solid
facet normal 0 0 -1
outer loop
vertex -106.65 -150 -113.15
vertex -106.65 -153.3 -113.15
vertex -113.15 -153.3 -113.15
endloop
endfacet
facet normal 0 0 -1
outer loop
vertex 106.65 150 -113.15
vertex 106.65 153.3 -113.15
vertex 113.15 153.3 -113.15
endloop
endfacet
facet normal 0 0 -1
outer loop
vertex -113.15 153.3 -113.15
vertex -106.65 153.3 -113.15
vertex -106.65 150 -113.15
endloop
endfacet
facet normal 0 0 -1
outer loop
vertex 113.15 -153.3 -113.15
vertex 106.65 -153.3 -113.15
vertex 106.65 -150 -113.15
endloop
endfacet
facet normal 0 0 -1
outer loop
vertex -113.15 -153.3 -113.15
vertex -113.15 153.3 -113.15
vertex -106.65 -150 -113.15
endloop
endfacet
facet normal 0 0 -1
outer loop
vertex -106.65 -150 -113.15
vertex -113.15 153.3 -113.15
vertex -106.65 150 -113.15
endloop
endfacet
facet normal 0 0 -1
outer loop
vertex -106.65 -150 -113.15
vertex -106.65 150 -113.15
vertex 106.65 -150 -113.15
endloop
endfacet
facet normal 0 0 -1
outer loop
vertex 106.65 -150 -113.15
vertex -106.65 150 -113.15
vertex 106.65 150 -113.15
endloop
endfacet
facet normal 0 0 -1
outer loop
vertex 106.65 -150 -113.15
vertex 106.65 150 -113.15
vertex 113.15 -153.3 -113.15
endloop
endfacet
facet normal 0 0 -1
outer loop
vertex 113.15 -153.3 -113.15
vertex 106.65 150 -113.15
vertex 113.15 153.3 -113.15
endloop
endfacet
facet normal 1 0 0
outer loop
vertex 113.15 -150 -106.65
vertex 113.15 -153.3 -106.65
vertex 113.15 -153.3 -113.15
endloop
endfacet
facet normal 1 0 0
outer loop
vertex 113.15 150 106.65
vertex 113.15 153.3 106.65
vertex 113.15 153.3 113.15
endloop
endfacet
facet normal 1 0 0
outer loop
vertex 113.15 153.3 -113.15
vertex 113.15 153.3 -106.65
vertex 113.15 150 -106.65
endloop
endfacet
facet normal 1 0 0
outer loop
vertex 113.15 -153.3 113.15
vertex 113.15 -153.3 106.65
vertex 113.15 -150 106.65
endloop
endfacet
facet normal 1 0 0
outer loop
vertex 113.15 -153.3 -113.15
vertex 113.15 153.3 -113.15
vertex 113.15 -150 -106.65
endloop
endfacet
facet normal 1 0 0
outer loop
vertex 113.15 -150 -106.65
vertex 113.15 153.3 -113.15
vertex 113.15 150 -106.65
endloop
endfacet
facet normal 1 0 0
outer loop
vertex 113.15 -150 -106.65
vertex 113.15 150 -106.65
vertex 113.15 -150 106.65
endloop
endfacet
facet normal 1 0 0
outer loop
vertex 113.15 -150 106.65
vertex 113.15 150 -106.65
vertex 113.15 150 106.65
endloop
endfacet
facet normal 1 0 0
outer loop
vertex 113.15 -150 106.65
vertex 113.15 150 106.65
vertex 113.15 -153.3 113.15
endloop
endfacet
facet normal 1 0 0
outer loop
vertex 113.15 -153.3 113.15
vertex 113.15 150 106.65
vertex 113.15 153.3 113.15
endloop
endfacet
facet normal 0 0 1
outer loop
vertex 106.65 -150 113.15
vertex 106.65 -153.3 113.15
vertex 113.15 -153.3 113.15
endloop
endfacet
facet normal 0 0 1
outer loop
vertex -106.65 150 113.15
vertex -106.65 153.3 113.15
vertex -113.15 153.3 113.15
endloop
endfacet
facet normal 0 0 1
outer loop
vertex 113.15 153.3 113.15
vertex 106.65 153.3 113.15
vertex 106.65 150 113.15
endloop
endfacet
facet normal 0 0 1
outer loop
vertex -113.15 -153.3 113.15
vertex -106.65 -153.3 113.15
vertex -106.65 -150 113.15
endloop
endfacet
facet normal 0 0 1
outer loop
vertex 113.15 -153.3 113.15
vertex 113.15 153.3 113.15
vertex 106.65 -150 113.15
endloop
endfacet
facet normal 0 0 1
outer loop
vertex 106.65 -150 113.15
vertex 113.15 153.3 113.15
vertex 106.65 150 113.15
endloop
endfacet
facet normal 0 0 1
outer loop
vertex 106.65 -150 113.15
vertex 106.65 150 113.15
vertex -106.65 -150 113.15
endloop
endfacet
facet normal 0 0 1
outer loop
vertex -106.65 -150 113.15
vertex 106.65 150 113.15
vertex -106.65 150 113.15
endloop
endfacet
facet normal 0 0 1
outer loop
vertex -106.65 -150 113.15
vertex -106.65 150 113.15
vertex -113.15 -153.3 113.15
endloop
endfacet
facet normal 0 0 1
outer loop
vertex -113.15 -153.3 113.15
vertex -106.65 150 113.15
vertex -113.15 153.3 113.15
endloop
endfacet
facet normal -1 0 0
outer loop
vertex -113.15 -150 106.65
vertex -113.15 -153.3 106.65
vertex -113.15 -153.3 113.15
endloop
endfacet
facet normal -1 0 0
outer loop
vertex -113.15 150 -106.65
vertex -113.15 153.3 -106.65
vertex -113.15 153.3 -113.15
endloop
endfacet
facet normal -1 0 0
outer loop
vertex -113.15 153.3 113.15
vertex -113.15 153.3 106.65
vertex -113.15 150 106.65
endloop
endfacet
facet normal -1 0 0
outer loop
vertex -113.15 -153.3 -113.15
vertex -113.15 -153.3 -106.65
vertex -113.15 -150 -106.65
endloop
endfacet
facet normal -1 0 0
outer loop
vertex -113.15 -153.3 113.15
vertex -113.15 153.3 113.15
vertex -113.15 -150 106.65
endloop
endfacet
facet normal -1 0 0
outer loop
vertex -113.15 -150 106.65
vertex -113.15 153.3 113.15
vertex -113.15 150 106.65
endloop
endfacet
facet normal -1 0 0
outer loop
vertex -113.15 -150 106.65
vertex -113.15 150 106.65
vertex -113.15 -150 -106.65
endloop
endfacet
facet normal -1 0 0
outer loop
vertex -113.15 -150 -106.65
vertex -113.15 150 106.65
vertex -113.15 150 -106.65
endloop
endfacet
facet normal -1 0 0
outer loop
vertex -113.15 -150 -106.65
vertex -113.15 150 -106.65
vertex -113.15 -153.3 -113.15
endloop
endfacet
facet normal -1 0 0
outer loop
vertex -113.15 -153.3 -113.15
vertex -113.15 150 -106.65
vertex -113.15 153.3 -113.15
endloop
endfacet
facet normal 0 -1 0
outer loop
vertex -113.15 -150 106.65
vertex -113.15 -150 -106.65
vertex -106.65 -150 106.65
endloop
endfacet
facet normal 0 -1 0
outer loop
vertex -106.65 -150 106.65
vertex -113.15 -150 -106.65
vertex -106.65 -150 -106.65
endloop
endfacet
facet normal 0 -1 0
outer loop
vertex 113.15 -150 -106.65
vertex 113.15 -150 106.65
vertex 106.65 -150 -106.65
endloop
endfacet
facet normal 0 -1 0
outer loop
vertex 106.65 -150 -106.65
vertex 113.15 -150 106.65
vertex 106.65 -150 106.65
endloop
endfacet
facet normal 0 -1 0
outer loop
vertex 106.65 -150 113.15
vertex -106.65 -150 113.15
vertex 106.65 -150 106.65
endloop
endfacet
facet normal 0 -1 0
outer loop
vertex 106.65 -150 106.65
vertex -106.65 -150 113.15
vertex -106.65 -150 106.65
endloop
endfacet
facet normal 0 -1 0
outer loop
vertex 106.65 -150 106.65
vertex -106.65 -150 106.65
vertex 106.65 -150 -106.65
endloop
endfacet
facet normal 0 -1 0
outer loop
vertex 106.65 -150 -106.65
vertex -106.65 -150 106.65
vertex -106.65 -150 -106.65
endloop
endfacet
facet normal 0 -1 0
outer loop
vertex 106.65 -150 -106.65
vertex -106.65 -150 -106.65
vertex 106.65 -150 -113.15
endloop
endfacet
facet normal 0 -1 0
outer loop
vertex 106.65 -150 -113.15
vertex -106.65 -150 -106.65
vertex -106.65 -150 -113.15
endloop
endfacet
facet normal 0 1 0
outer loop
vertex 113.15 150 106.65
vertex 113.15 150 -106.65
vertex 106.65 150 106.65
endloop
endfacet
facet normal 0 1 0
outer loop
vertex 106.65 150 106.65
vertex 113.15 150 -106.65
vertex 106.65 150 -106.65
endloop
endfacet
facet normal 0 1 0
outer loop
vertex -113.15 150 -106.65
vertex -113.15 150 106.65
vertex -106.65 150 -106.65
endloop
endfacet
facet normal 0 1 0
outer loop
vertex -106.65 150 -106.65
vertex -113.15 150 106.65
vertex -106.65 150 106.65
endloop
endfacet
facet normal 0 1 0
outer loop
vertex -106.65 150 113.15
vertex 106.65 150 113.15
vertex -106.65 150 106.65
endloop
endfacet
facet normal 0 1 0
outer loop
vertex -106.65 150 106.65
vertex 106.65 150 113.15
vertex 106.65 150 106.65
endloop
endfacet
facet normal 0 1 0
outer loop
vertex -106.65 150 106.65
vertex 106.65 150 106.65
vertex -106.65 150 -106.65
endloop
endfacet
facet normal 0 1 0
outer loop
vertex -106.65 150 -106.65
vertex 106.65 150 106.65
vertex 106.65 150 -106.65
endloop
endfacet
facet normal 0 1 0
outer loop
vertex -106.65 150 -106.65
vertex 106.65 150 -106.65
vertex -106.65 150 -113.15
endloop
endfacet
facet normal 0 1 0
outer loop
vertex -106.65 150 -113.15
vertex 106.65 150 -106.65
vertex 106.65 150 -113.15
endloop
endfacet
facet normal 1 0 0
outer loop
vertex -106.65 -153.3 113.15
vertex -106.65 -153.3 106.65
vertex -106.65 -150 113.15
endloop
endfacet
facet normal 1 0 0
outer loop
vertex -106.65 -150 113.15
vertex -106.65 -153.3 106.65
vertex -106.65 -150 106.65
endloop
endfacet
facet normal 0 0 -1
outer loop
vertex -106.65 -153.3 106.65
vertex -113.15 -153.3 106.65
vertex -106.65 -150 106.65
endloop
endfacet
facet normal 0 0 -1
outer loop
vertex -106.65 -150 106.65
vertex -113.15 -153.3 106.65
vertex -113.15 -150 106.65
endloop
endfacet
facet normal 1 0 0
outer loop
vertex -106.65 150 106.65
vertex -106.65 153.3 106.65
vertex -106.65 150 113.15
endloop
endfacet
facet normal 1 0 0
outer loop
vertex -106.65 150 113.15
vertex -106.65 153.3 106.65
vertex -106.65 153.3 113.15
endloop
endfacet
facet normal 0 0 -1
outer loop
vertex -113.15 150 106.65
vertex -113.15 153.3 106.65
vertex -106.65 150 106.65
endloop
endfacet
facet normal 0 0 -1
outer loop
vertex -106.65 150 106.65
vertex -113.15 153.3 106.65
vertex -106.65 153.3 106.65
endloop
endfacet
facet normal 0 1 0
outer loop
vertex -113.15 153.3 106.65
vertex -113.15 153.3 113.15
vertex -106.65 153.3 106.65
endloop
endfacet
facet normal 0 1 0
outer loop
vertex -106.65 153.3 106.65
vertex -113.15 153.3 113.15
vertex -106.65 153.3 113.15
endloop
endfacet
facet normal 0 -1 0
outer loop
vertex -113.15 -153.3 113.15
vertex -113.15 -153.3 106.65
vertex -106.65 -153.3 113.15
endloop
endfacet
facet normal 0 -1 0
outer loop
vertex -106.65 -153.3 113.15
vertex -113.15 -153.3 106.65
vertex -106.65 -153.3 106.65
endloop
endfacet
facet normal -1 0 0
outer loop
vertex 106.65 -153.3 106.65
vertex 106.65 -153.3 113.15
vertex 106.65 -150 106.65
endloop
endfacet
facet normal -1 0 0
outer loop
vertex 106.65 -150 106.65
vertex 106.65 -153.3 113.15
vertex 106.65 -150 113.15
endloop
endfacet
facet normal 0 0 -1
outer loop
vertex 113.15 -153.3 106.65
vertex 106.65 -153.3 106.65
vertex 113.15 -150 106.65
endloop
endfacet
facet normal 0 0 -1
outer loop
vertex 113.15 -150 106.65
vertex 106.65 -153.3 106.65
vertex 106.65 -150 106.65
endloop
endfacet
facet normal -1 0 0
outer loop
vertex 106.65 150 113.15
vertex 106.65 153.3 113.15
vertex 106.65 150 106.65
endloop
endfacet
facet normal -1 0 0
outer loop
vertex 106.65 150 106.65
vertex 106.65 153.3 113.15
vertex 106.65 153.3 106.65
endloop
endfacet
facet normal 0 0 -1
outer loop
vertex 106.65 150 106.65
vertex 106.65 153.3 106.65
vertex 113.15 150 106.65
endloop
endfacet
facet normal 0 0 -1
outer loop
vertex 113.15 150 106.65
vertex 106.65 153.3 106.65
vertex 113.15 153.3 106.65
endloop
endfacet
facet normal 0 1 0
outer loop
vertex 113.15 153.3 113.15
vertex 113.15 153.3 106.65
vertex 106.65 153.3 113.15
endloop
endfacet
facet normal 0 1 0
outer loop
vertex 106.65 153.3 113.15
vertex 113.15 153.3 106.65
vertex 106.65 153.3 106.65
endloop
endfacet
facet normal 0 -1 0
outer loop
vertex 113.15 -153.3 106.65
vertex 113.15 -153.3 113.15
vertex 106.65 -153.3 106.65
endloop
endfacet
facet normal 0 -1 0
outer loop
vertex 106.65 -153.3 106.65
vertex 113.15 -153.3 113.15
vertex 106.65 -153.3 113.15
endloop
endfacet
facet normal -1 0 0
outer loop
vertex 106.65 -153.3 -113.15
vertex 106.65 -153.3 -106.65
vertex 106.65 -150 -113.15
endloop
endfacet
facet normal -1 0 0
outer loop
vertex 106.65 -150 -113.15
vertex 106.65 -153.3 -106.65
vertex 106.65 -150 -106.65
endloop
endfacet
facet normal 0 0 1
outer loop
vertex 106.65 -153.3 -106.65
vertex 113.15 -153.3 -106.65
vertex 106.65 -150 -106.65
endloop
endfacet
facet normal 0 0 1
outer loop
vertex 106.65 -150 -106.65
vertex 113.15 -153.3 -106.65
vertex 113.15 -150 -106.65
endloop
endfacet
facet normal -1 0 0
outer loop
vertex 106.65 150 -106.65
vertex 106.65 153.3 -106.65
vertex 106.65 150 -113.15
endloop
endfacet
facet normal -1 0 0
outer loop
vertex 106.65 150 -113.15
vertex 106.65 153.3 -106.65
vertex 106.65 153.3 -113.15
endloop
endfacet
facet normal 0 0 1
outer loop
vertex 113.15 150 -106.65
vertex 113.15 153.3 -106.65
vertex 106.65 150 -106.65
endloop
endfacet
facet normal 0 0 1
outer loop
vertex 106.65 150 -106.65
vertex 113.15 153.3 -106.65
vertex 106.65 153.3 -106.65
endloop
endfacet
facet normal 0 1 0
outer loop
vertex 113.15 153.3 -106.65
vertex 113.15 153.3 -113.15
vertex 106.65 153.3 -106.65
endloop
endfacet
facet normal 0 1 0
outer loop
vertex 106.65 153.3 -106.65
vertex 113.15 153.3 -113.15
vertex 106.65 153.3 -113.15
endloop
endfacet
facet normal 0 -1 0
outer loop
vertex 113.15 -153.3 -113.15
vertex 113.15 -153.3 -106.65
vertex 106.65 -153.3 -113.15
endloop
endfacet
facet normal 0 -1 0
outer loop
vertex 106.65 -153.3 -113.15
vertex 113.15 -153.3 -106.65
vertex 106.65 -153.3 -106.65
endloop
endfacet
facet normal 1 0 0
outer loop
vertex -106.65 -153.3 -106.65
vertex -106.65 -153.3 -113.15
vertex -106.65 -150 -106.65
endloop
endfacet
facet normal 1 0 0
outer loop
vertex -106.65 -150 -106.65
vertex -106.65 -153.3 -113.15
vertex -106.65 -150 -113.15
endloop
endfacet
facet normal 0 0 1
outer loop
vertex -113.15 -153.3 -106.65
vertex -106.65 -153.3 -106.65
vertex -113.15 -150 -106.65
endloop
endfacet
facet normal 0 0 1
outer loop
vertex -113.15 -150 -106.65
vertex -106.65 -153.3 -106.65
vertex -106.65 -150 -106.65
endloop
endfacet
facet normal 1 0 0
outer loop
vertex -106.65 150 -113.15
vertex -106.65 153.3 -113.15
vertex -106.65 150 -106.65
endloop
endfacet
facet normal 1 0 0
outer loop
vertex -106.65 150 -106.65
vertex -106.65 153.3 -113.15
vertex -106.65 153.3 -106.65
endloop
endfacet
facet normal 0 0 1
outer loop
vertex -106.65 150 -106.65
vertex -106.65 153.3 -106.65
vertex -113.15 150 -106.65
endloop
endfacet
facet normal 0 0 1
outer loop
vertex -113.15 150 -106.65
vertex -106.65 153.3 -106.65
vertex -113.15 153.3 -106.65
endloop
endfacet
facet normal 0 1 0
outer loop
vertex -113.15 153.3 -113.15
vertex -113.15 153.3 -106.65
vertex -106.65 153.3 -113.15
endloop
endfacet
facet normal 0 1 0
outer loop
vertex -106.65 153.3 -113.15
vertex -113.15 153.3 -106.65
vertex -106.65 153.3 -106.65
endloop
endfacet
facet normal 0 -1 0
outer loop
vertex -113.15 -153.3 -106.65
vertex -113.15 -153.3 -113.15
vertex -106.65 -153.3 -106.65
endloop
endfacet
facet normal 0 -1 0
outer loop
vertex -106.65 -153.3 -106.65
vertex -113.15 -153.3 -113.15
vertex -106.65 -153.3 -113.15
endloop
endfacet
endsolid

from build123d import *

# Parameters (mm, degrees)
ESTRUSIONE_ESTRUSIONE2_DEPTH      = 150
ESTRUSIONE_ESTRUSIONE2_DEPTH_BACK = 150
ESTRUSIONE_ESTRUSIONE3_DEPTH      = 3.3
ESTRUSIONE_ESTRUSIONE3_DEPTH_BACK = 303.3
SCHIZZO3_W                        = 6.5
SCHIZZO3_H                        = 6.5


with BuildPart() as part:
    # Schizzo2 → Estrusione-Estrusione2 (new, two sides: drawn at the far end of the back side and taken through both)
    with BuildSketch(Plane(origin=(0, 0, 0), x_dir=(1, 0, 0), z_dir=(0, 1, 0)).offset(-ESTRUSIONE_ESTRUSIONE2_DEPTH_BACK)):
        Polygon((-113.15, 106.65), (-113.15, -106.65), (-106.65, -106.65), (-106.65, -113.15), (106.65, -113.15), (106.65, -106.65), (113.15, -106.65), (113.15, 106.65), (106.65, 106.65), (106.65, 113.15), (-106.65, 113.15), (-106.65, 106.65), align=None)
    extrude(amount=ESTRUSIONE_ESTRUSIONE2_DEPTH + ESTRUSIONE_ESTRUSIONE2_DEPTH_BACK)

    # Schizzo3 → Estrusione-Estrusione3 (add, two sides: drawn at the far end of the back side and taken through both)
    with BuildSketch(Plane.XZ.offset(150).offset(-ESTRUSIONE_ESTRUSIONE3_DEPTH_BACK)):
        with Locations((-109.9, 109.9)):
            Rectangle(SCHIZZO3_W, SCHIZZO3_H)
        with Locations((109.9, 109.9)):
            Rectangle(SCHIZZO3_W, SCHIZZO3_H)
        with Locations((109.9, -109.9)):
            Rectangle(SCHIZZO3_W, SCHIZZO3_H)
        with Locations((-109.9, -109.9)):
            Rectangle(SCHIZZO3_W, SCHIZZO3_H)
    extrude(amount=ESTRUSIONE_ESTRUSIONE3_DEPTH + ESTRUSIONE_ESTRUSIONE3_DEPTH_BACK)


solid = part.part
